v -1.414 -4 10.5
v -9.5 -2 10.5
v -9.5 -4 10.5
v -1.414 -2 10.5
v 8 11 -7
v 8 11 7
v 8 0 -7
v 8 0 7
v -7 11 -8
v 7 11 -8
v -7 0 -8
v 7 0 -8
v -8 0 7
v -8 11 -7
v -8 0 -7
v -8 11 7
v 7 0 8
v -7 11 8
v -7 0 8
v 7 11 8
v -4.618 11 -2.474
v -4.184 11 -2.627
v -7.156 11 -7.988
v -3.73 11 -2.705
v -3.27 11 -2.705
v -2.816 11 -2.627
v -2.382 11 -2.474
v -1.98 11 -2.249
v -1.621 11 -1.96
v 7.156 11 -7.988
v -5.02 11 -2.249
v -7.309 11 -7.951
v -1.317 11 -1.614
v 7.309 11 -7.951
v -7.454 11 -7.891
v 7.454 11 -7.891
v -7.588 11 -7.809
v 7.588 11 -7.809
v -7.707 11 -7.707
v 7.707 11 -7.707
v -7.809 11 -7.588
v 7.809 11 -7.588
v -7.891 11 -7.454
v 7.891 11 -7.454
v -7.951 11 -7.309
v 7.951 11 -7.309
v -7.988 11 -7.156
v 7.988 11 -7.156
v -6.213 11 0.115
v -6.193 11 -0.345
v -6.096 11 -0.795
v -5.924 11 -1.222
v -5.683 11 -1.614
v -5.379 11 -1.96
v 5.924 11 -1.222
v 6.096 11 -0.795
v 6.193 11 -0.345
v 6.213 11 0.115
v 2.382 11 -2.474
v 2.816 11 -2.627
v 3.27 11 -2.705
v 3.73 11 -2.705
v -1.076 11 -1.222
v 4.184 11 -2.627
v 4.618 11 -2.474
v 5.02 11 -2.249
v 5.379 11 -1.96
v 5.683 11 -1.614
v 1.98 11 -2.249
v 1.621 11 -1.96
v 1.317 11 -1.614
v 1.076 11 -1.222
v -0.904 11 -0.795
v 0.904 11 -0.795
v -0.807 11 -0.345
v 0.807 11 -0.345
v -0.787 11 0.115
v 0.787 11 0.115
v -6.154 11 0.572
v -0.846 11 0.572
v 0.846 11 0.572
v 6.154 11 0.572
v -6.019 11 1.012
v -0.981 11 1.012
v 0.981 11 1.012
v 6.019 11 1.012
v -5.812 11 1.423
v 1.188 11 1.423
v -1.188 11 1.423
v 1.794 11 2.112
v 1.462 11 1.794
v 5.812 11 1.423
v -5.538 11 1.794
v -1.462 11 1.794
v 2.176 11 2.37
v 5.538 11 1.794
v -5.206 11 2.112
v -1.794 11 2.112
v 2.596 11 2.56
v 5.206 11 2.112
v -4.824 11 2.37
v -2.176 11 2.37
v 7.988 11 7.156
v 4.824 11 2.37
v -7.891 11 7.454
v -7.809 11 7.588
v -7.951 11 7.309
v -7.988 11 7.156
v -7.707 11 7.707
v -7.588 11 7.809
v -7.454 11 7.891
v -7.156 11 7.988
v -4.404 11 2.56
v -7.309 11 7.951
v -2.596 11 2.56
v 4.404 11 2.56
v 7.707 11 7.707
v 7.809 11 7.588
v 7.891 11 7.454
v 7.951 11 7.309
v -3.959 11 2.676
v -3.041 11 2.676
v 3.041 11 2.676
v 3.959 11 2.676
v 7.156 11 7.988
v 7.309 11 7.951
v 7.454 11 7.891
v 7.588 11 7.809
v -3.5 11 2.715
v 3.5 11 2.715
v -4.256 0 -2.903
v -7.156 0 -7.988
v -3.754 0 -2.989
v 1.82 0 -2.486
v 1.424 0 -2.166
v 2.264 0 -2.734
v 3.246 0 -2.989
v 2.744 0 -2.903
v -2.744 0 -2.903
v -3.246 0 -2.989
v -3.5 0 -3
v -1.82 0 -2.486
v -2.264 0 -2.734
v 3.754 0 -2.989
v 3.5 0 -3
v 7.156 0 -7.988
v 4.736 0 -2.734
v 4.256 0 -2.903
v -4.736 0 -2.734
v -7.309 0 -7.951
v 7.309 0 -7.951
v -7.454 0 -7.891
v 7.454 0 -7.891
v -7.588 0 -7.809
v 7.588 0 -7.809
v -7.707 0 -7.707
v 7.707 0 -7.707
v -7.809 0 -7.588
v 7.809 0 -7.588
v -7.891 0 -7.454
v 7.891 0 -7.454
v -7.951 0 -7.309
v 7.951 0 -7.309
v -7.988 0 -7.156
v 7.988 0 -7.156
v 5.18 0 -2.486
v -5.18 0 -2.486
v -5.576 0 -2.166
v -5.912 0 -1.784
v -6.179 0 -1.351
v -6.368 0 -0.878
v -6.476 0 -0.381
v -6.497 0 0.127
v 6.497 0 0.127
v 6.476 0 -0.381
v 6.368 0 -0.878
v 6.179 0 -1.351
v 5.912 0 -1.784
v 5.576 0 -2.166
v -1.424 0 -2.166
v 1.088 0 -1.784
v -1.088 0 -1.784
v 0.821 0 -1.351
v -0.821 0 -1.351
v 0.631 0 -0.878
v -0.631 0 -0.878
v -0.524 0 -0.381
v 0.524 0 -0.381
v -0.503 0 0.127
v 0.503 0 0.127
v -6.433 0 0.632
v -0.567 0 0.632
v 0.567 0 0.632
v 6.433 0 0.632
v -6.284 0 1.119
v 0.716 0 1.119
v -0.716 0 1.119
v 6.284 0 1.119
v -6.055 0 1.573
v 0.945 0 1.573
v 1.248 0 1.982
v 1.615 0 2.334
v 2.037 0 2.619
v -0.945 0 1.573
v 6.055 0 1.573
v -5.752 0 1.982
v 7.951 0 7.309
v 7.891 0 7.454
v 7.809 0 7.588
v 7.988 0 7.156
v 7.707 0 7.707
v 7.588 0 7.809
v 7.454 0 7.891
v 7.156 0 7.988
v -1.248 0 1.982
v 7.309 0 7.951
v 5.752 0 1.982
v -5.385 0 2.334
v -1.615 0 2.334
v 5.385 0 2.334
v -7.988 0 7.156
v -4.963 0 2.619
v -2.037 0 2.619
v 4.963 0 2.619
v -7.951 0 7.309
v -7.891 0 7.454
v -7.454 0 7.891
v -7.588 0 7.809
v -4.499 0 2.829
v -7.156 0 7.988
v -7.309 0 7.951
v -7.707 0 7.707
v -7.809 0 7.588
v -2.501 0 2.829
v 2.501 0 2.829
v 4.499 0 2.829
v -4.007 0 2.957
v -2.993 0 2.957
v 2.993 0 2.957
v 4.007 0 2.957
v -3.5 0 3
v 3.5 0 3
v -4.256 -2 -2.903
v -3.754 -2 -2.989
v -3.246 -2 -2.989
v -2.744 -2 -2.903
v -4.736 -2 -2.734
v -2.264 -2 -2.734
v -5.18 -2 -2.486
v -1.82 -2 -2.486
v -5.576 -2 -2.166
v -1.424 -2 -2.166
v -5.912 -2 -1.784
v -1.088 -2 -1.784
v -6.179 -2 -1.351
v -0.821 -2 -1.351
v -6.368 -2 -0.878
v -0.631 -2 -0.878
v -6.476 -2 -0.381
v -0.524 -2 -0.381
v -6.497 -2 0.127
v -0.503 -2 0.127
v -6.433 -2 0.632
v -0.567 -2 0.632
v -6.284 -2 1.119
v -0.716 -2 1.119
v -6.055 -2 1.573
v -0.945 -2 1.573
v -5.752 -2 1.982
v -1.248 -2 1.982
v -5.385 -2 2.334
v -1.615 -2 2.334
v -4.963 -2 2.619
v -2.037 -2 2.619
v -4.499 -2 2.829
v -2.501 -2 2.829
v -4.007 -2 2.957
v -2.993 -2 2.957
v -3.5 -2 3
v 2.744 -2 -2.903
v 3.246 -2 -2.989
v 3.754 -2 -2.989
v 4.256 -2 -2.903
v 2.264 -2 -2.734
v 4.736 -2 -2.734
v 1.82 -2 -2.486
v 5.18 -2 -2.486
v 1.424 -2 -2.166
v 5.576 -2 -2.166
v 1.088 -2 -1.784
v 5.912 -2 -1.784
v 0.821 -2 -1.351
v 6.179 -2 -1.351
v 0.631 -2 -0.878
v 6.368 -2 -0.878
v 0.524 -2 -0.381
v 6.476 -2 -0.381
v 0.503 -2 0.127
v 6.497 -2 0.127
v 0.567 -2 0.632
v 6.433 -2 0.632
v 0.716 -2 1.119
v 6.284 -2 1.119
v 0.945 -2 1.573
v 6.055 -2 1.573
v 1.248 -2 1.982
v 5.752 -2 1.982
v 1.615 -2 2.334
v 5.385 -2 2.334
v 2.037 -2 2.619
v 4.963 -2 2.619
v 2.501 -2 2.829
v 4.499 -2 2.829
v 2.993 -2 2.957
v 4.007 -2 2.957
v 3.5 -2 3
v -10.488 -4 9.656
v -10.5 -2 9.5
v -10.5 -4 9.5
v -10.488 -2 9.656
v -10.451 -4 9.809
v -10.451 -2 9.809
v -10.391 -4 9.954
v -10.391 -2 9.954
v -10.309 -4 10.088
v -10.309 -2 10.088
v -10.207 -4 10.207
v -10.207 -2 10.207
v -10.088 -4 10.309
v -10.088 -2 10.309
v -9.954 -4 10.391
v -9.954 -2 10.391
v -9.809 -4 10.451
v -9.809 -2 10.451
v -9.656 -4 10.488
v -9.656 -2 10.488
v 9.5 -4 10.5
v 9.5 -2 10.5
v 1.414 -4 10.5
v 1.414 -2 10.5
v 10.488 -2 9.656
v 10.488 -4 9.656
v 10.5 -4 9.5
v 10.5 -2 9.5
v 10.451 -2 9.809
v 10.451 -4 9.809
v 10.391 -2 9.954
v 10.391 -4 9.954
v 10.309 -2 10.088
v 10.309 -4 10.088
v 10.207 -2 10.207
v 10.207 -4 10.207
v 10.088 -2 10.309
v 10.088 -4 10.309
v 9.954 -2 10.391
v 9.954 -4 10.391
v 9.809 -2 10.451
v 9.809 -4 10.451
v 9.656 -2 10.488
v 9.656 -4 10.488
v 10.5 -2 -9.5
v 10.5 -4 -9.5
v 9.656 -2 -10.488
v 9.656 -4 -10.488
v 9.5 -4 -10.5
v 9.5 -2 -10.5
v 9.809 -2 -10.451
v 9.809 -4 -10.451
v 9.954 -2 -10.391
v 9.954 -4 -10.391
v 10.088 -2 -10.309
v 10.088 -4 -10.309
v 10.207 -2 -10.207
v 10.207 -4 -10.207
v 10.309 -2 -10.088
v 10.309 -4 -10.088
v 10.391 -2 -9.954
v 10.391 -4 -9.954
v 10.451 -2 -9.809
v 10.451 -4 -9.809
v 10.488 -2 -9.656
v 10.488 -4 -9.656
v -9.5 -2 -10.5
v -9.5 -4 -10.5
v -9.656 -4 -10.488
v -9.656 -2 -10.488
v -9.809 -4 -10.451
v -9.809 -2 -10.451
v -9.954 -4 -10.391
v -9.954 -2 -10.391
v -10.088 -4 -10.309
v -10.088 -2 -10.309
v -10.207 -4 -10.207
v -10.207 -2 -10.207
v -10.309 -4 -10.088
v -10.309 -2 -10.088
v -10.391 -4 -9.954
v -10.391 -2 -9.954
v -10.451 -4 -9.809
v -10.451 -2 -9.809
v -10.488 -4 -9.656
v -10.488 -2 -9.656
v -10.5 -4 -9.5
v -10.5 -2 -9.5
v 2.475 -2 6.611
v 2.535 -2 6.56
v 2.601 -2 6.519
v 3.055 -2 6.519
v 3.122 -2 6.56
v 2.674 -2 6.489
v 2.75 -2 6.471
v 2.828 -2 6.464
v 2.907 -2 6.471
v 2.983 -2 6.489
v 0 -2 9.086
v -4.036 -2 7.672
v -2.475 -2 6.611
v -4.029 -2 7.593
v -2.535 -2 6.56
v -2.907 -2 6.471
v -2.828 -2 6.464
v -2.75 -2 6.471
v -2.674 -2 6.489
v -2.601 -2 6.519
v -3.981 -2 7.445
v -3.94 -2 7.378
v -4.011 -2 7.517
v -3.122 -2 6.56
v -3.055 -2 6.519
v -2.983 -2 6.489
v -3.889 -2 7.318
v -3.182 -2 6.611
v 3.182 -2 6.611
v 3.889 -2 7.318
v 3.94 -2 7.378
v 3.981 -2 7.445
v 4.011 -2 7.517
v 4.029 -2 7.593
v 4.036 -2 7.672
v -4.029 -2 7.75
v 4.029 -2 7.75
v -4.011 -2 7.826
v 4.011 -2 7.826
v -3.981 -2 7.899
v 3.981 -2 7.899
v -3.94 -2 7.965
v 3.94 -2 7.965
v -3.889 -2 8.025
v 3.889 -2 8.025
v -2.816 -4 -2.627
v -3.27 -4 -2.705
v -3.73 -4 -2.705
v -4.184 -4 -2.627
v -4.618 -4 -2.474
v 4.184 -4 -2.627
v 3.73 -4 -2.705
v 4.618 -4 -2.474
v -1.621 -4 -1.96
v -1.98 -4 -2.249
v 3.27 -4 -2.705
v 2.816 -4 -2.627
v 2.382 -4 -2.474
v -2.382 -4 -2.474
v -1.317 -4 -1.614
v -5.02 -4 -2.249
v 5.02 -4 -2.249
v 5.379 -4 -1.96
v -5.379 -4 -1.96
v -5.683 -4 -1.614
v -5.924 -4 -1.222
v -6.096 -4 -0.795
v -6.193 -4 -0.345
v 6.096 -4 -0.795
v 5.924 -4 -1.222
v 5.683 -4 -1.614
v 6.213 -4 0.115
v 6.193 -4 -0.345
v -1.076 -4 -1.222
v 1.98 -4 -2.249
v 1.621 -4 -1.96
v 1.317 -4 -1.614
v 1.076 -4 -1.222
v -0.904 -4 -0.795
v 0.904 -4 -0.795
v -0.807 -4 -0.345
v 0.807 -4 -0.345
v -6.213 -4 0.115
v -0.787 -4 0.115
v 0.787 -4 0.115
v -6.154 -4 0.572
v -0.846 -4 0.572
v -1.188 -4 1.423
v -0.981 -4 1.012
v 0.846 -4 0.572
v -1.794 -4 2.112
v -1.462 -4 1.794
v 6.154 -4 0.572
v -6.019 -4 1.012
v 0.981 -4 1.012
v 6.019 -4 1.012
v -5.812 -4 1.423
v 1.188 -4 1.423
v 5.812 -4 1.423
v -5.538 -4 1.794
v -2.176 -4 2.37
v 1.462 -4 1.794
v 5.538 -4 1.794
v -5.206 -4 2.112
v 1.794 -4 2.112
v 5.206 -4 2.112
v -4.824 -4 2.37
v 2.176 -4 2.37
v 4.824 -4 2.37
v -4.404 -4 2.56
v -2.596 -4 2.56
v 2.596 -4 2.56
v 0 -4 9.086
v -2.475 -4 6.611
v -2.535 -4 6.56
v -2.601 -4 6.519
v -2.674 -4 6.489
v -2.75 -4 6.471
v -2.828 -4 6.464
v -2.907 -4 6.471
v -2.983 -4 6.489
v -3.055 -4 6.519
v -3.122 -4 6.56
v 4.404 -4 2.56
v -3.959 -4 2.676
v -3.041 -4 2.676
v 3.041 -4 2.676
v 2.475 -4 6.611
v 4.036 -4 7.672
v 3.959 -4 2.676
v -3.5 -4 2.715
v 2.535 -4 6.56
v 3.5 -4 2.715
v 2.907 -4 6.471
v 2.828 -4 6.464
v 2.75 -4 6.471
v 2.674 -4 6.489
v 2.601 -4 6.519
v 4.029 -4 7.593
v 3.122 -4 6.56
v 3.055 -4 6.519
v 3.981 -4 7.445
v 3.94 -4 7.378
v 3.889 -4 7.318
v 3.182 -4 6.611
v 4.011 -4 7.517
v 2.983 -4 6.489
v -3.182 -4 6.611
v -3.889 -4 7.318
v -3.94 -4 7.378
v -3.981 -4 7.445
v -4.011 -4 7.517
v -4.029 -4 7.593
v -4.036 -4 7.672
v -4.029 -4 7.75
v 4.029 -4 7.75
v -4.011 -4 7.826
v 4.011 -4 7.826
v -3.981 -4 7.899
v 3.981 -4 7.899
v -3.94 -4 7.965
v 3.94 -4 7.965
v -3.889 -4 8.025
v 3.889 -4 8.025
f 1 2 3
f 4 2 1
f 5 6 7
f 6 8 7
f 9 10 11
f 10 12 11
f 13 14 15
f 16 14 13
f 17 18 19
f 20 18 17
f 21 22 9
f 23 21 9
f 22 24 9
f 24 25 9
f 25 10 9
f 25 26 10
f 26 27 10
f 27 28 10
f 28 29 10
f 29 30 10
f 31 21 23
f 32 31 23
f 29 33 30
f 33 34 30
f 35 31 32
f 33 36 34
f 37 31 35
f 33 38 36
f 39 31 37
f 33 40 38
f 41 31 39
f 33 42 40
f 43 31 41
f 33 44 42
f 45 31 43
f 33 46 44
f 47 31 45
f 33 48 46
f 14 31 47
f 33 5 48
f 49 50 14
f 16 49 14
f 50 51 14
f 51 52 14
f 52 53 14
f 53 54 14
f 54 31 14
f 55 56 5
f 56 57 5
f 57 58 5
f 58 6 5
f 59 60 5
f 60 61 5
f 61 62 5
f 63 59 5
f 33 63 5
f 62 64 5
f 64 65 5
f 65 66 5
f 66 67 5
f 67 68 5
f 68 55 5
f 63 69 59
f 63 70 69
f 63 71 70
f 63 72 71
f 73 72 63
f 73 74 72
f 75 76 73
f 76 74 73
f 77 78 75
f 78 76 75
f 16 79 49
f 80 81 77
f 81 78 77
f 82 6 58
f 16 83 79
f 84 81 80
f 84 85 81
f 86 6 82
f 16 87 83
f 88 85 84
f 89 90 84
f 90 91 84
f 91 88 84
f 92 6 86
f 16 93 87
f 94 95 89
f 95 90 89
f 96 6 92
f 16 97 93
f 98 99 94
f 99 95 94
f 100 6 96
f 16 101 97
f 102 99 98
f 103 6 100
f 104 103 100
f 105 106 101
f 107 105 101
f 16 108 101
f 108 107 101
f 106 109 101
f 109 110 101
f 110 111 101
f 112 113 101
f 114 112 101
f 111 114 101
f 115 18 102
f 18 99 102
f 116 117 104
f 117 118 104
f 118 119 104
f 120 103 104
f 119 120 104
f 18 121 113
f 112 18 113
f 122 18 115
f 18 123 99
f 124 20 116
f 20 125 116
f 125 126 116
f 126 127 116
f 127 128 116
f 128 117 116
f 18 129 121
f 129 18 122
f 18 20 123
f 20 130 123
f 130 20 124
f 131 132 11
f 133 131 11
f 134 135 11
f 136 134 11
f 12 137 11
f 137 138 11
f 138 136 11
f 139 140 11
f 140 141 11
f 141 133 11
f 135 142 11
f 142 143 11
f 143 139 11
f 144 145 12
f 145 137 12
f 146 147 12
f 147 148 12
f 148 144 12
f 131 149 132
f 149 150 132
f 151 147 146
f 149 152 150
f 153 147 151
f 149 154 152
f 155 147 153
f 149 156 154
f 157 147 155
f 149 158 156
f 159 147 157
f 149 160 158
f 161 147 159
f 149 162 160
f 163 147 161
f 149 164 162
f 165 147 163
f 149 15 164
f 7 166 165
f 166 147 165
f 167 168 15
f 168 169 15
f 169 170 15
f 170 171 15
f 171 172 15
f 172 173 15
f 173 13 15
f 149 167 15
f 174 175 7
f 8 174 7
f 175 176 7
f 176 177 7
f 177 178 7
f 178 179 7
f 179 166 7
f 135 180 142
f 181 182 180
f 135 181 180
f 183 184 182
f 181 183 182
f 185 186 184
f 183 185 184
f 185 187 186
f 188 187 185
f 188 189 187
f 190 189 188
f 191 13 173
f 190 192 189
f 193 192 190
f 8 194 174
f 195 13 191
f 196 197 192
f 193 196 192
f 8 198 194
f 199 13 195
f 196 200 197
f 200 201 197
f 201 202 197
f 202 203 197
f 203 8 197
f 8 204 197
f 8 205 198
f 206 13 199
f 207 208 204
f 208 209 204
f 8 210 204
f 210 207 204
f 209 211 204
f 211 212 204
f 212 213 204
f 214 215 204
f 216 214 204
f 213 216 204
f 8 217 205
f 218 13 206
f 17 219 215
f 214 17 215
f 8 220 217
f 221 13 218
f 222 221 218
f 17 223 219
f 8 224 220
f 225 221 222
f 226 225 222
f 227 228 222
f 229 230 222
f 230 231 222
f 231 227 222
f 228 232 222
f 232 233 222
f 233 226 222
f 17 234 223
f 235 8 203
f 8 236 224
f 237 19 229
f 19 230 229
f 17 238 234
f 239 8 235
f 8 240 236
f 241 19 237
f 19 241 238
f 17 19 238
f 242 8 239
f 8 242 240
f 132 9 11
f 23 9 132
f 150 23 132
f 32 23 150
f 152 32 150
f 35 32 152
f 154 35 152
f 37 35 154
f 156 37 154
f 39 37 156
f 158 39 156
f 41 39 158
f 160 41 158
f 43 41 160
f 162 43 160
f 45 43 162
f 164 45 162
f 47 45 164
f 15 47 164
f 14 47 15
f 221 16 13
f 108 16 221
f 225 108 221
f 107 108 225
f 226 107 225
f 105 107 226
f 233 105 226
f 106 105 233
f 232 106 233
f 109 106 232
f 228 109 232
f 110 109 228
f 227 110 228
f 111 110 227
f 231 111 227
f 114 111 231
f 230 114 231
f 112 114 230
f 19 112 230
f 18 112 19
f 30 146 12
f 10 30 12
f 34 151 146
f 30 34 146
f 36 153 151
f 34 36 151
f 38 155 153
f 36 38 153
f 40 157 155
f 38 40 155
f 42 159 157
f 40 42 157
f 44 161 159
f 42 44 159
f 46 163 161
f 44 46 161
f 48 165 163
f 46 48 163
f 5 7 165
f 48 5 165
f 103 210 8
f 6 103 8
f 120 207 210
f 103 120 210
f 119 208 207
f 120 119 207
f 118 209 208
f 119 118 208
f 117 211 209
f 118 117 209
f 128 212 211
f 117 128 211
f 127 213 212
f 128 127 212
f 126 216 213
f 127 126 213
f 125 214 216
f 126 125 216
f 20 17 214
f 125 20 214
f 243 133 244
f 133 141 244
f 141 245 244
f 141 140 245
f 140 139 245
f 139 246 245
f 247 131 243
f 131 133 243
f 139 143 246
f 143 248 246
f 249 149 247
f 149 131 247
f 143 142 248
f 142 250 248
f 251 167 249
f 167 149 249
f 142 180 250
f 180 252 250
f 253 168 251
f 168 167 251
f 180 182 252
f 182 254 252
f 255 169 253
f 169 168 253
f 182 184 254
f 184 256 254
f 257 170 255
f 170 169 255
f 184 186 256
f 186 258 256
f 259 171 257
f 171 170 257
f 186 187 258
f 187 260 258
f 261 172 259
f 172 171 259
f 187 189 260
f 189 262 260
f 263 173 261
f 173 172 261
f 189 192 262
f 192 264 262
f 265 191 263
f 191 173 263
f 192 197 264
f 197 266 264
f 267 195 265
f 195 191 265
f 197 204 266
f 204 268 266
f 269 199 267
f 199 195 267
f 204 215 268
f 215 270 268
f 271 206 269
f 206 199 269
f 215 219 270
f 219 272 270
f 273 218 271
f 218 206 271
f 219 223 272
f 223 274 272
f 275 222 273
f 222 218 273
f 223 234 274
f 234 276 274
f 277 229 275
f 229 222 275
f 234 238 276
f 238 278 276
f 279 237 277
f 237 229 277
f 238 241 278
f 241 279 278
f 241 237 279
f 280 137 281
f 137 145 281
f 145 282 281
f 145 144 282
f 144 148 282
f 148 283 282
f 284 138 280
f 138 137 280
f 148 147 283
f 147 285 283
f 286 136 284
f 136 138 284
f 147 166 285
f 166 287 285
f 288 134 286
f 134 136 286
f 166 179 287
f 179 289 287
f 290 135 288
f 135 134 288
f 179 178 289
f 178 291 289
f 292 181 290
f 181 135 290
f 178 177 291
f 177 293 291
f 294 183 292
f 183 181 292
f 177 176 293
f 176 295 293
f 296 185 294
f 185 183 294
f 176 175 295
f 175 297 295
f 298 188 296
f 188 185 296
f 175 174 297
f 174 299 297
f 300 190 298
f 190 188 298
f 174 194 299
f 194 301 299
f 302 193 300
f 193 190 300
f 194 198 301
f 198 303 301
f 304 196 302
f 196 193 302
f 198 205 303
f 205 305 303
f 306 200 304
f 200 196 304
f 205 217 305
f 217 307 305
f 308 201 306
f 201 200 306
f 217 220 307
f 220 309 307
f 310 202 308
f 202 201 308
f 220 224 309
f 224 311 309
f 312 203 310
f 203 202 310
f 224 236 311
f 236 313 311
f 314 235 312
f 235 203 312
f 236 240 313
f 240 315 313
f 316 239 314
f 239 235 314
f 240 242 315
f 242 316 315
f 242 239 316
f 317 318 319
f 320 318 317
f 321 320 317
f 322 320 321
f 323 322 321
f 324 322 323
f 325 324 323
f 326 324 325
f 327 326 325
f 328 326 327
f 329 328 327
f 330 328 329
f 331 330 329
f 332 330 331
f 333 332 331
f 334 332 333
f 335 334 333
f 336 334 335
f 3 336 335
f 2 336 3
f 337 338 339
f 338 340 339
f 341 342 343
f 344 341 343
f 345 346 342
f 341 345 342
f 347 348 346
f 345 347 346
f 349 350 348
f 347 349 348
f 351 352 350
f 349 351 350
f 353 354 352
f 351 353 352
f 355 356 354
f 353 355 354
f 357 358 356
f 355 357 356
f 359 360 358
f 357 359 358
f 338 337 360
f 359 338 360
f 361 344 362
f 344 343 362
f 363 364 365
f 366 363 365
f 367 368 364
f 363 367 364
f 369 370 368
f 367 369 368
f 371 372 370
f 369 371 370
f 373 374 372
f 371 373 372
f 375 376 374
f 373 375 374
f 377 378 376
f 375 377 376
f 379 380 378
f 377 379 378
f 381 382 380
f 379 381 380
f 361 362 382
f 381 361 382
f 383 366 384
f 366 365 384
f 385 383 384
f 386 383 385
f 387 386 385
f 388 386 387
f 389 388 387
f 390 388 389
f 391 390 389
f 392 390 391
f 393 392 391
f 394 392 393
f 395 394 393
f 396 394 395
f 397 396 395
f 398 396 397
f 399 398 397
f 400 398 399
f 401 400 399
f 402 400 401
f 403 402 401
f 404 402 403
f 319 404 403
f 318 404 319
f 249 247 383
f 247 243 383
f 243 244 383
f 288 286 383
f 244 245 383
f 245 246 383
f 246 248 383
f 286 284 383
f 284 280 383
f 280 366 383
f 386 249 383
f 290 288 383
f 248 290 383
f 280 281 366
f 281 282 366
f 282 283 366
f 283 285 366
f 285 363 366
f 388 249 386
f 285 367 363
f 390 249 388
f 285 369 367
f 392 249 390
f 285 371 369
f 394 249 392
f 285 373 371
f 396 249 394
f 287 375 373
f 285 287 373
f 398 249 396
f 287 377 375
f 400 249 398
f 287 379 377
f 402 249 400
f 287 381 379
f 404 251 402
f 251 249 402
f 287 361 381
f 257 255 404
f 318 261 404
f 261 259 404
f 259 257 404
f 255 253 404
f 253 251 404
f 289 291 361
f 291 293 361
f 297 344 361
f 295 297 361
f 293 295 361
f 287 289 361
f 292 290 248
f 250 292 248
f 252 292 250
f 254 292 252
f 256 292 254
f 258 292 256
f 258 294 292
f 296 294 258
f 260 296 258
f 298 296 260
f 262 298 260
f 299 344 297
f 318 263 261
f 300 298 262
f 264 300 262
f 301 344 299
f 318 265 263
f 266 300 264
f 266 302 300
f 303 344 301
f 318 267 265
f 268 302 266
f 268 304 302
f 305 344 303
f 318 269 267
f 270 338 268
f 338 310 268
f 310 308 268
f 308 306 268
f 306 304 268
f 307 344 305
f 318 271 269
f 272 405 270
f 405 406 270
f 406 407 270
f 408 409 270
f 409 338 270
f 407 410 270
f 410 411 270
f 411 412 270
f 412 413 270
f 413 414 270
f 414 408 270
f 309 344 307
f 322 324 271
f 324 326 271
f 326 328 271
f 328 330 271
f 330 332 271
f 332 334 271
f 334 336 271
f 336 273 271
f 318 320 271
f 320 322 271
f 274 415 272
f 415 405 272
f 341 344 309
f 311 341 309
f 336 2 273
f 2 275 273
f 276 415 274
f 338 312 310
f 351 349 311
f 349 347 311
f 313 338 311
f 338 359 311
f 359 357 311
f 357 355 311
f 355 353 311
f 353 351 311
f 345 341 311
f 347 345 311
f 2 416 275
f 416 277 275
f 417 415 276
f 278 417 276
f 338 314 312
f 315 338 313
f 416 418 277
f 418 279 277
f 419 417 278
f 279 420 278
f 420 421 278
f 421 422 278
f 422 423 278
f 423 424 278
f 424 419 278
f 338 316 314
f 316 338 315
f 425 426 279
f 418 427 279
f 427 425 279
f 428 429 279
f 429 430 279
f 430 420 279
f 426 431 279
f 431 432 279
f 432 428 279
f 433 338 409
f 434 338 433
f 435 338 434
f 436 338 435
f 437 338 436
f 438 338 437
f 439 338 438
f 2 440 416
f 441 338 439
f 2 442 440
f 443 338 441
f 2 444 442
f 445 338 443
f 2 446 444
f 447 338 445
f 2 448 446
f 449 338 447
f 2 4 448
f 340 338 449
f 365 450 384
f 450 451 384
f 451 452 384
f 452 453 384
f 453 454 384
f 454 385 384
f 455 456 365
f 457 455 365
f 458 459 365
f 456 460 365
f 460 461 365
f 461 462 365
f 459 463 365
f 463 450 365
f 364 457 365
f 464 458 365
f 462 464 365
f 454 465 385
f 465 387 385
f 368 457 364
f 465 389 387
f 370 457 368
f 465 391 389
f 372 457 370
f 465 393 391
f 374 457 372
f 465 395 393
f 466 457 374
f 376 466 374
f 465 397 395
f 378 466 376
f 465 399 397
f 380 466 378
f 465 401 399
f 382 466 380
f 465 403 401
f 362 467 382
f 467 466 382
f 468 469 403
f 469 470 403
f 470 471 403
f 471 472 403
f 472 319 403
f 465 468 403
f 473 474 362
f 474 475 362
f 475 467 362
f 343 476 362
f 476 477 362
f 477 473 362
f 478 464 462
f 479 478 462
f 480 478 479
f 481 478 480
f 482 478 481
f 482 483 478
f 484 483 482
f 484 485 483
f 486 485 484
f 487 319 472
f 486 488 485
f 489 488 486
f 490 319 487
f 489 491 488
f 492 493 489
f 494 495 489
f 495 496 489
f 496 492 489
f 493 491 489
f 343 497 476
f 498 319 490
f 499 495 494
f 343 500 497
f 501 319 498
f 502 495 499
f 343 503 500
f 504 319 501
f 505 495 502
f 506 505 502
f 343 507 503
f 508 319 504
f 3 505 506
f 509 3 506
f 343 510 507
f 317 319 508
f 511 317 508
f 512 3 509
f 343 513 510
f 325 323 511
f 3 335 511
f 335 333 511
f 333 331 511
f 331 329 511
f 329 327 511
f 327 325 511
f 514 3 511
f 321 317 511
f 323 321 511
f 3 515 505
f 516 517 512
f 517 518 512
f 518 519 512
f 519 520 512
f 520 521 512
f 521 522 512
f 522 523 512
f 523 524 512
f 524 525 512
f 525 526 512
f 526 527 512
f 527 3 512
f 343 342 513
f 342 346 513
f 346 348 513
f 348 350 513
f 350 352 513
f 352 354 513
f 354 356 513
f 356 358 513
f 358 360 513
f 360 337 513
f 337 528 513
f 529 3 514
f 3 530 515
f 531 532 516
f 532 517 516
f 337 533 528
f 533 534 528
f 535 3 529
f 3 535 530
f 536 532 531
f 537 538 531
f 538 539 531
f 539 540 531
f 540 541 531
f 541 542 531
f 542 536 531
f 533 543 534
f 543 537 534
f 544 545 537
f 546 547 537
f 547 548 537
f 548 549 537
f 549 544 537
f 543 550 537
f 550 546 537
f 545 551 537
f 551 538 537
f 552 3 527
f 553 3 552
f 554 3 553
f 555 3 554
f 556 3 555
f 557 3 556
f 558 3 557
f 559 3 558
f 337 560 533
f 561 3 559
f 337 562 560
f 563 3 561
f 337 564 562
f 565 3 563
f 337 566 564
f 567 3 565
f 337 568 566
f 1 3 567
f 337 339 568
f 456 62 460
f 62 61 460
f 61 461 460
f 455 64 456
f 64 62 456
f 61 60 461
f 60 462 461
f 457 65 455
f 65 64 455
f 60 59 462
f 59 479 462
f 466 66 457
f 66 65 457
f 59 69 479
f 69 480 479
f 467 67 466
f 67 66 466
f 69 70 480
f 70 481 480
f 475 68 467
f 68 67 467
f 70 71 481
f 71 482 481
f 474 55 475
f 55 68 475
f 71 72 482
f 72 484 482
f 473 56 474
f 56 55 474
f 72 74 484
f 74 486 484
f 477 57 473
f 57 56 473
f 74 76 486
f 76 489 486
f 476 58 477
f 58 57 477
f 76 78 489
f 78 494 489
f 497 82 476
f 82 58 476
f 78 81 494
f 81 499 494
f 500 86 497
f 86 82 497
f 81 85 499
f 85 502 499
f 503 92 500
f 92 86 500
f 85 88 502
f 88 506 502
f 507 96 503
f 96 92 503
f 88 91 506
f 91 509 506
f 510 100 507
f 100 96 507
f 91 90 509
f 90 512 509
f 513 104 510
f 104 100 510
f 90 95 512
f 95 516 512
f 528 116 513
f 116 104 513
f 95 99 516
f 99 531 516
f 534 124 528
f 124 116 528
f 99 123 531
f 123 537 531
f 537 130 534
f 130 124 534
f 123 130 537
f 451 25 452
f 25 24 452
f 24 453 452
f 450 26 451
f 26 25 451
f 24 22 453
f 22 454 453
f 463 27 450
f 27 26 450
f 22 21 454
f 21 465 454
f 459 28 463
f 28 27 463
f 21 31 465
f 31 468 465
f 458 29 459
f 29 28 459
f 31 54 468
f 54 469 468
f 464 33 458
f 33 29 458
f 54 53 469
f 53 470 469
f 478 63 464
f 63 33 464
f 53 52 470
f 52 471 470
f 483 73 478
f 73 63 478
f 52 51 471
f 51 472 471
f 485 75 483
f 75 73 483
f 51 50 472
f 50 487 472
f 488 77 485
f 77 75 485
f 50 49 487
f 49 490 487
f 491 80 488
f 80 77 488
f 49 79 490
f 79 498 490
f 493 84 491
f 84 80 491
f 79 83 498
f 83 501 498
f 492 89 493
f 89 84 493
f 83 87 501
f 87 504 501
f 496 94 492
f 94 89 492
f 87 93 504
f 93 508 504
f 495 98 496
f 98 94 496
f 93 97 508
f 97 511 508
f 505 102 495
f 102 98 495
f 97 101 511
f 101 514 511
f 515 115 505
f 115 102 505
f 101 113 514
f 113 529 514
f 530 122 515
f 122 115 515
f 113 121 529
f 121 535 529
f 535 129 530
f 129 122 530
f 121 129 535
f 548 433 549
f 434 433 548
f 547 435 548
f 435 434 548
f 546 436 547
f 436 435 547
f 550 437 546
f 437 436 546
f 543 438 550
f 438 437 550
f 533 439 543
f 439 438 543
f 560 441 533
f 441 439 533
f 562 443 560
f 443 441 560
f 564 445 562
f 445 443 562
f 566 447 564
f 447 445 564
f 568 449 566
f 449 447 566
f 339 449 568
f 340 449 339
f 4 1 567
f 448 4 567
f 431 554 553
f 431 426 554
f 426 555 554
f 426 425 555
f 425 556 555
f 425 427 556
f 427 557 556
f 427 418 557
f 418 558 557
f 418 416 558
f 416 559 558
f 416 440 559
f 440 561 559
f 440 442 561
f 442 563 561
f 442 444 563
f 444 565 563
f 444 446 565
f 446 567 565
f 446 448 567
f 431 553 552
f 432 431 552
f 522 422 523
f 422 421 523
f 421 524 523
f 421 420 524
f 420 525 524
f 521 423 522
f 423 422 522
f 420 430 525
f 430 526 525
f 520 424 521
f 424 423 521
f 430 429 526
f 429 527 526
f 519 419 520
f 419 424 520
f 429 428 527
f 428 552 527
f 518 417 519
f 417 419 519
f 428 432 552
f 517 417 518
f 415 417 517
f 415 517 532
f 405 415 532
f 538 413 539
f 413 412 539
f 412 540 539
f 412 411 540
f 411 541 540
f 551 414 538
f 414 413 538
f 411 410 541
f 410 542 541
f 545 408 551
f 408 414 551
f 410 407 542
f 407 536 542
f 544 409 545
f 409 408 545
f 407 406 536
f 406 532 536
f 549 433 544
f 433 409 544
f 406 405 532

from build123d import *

# Parameters (mm, degrees)
SKETCH1_W           = 16
SKETCH1_H           = 16
BOSS_EXTRUDE1_DEPTH = 11
FILLET1_R           = 1
SKETCH4_R           = 3
BOSS_EXTRUDE2_DEPTH = 4
BOSS_EXTRUDE3_DEPTH = 2
SKETCH3_R           = 2.715
CUT_EXTRUDE2_DEPTH  = 22.106870919
CUT_EXTRUDE3_DEPTH  = 20.735754356


with BuildPart() as part:
    # Sketch1 → Boss-Extrude1 (new body)
    with BuildSketch(Plane(origin=(0, 0, 0), x_dir=(1, 0, 0), z_dir=(0, 1, 0))):
        Rectangle(SKETCH1_W, SKETCH1_H)
    extrude(amount=BOSS_EXTRUDE1_DEPTH)

    # Fillet1
    fillet1_edges = [part.edges().sort_by_distance(p)[0] for p in [
        (8, 5.5, 8),
        (-8, 5.5, 8),
        (-8, 5.5, -8),
        (8, 5.5, -8),
    ]]
    fillet(fillet1_edges, radius=FILLET1_R)

    # Sketch4 → Boss-Extrude2 (add)
    with BuildSketch(Plane(origin=(0, 0, 0), x_dir=(-1, 0, 0), z_dir=(0, -1, 0))):
        with Locations(Location((3.5, 0, 0), (0, 0, 90))):
            Circle(SKETCH4_R)
        with Locations(Location((-3.5, 0, 0), (0, 0, 90))):
            Circle(SKETCH4_R)
    extrude(amount=BOSS_EXTRUDE2_DEPTH)

    # Sketch5 → Boss-Extrude3 (add)
    with BuildSketch(Plane(origin=(0, -4, 0), x_dir=(-1, 0, 0), z_dir=(0, -1, 0))):
        with BuildLine():
            Line((9.5, 10.5), (-9.5, 10.5))
            ThreePointArc((-9.5, 10.5), (-10.207106781, 10.207106781), (-10.5, 9.5))
            Line((-10.5, 9.5), (-10.5, -9.5))
            ThreePointArc((-10.5, -9.5), (-10.207106781, -10.207106781), (-9.5, -10.5))
            Line((-9.5, -10.5), (9.5, -10.5))
            ThreePointArc((9.5, -10.5), (10.207106781, -10.207106781), (10.5, -9.5))
            Line((10.5, -9.5), (10.5, 9.5))
            ThreePointArc((10.5, 9.5), (10.207106781, 10.207106781), (9.5, 10.5))
        make_face()
    extrude(amount=-BOSS_EXTRUDE3_DEPTH)

    # Sketch3 → Cut-Extrude2 (cut, through all)
    with BuildSketch(Plane(origin=(0, 11, 0), x_dir=(1, 0, 0), z_dir=(0, 1, 0))):
        with Locations(Location((-3.5, 0, 0), (0, 0, 270))):
            Circle(SKETCH3_R)
        with Locations(Location((3.5, 0, 0), (0, 0, 270))):
            Circle(SKETCH3_R)
    extrude(amount=-CUT_EXTRUDE2_DEPTH, mode=Mode.SUBTRACT)

    # Sketch7 → Cut-Extrude3 (cut, through all)
    with BuildSketch(Plane(origin=(0, -2, 0), x_dir=(1, 0, 0), z_dir=(0, 1, 0))):
        with BuildLine():
            Line((0, -9.085786438), (1.414213562, -10.5))
            Line((1.414213562, -10.5), (3.889087297, -8.025126266))
            ThreePointArc((3.889087297, -8.025126266), (4.035533906, -7.671572875), (3.889087297, -7.318019485))
            Line((3.889087297, -7.318019485), (3.181980515, -6.610912703))
            ThreePointArc((3.181980515, -6.610912703), (2.828427125, -6.464466094), (2.474873734, -6.610912703))
            Line((2.474873734, -6.610912703), (0, -9.085786438))
        make_face()
        with BuildLine():
            Line((-3.889087297, -8.025126266), (-1.414213562, -10.5))
            Line((-1.414213562, -10.5), (0, -9.085786438))
            Line((0, -9.085786438), (-2.474873734, -6.610912703))
            ThreePointArc((-2.474873734, -6.610912703), (-2.828427125, -6.464466094), (-3.181980515, -6.610912703))
            Line((-3.181980515, -6.610912703), (-3.889087297, -7.318019485))
            ThreePointArc((-3.889087297, -7.318019485), (-4.035533906, -7.671572875), (-3.889087297, -8.025126266))
        make_face()
        Polygon((-1.414213562, -10.5), (1.414213562, -10.5), (0, -9.085786438), align=None)
    extrude(amount=-CUT_EXTRUDE3_DEPTH, mode=Mode.SUBTRACT)


solid = part.part
